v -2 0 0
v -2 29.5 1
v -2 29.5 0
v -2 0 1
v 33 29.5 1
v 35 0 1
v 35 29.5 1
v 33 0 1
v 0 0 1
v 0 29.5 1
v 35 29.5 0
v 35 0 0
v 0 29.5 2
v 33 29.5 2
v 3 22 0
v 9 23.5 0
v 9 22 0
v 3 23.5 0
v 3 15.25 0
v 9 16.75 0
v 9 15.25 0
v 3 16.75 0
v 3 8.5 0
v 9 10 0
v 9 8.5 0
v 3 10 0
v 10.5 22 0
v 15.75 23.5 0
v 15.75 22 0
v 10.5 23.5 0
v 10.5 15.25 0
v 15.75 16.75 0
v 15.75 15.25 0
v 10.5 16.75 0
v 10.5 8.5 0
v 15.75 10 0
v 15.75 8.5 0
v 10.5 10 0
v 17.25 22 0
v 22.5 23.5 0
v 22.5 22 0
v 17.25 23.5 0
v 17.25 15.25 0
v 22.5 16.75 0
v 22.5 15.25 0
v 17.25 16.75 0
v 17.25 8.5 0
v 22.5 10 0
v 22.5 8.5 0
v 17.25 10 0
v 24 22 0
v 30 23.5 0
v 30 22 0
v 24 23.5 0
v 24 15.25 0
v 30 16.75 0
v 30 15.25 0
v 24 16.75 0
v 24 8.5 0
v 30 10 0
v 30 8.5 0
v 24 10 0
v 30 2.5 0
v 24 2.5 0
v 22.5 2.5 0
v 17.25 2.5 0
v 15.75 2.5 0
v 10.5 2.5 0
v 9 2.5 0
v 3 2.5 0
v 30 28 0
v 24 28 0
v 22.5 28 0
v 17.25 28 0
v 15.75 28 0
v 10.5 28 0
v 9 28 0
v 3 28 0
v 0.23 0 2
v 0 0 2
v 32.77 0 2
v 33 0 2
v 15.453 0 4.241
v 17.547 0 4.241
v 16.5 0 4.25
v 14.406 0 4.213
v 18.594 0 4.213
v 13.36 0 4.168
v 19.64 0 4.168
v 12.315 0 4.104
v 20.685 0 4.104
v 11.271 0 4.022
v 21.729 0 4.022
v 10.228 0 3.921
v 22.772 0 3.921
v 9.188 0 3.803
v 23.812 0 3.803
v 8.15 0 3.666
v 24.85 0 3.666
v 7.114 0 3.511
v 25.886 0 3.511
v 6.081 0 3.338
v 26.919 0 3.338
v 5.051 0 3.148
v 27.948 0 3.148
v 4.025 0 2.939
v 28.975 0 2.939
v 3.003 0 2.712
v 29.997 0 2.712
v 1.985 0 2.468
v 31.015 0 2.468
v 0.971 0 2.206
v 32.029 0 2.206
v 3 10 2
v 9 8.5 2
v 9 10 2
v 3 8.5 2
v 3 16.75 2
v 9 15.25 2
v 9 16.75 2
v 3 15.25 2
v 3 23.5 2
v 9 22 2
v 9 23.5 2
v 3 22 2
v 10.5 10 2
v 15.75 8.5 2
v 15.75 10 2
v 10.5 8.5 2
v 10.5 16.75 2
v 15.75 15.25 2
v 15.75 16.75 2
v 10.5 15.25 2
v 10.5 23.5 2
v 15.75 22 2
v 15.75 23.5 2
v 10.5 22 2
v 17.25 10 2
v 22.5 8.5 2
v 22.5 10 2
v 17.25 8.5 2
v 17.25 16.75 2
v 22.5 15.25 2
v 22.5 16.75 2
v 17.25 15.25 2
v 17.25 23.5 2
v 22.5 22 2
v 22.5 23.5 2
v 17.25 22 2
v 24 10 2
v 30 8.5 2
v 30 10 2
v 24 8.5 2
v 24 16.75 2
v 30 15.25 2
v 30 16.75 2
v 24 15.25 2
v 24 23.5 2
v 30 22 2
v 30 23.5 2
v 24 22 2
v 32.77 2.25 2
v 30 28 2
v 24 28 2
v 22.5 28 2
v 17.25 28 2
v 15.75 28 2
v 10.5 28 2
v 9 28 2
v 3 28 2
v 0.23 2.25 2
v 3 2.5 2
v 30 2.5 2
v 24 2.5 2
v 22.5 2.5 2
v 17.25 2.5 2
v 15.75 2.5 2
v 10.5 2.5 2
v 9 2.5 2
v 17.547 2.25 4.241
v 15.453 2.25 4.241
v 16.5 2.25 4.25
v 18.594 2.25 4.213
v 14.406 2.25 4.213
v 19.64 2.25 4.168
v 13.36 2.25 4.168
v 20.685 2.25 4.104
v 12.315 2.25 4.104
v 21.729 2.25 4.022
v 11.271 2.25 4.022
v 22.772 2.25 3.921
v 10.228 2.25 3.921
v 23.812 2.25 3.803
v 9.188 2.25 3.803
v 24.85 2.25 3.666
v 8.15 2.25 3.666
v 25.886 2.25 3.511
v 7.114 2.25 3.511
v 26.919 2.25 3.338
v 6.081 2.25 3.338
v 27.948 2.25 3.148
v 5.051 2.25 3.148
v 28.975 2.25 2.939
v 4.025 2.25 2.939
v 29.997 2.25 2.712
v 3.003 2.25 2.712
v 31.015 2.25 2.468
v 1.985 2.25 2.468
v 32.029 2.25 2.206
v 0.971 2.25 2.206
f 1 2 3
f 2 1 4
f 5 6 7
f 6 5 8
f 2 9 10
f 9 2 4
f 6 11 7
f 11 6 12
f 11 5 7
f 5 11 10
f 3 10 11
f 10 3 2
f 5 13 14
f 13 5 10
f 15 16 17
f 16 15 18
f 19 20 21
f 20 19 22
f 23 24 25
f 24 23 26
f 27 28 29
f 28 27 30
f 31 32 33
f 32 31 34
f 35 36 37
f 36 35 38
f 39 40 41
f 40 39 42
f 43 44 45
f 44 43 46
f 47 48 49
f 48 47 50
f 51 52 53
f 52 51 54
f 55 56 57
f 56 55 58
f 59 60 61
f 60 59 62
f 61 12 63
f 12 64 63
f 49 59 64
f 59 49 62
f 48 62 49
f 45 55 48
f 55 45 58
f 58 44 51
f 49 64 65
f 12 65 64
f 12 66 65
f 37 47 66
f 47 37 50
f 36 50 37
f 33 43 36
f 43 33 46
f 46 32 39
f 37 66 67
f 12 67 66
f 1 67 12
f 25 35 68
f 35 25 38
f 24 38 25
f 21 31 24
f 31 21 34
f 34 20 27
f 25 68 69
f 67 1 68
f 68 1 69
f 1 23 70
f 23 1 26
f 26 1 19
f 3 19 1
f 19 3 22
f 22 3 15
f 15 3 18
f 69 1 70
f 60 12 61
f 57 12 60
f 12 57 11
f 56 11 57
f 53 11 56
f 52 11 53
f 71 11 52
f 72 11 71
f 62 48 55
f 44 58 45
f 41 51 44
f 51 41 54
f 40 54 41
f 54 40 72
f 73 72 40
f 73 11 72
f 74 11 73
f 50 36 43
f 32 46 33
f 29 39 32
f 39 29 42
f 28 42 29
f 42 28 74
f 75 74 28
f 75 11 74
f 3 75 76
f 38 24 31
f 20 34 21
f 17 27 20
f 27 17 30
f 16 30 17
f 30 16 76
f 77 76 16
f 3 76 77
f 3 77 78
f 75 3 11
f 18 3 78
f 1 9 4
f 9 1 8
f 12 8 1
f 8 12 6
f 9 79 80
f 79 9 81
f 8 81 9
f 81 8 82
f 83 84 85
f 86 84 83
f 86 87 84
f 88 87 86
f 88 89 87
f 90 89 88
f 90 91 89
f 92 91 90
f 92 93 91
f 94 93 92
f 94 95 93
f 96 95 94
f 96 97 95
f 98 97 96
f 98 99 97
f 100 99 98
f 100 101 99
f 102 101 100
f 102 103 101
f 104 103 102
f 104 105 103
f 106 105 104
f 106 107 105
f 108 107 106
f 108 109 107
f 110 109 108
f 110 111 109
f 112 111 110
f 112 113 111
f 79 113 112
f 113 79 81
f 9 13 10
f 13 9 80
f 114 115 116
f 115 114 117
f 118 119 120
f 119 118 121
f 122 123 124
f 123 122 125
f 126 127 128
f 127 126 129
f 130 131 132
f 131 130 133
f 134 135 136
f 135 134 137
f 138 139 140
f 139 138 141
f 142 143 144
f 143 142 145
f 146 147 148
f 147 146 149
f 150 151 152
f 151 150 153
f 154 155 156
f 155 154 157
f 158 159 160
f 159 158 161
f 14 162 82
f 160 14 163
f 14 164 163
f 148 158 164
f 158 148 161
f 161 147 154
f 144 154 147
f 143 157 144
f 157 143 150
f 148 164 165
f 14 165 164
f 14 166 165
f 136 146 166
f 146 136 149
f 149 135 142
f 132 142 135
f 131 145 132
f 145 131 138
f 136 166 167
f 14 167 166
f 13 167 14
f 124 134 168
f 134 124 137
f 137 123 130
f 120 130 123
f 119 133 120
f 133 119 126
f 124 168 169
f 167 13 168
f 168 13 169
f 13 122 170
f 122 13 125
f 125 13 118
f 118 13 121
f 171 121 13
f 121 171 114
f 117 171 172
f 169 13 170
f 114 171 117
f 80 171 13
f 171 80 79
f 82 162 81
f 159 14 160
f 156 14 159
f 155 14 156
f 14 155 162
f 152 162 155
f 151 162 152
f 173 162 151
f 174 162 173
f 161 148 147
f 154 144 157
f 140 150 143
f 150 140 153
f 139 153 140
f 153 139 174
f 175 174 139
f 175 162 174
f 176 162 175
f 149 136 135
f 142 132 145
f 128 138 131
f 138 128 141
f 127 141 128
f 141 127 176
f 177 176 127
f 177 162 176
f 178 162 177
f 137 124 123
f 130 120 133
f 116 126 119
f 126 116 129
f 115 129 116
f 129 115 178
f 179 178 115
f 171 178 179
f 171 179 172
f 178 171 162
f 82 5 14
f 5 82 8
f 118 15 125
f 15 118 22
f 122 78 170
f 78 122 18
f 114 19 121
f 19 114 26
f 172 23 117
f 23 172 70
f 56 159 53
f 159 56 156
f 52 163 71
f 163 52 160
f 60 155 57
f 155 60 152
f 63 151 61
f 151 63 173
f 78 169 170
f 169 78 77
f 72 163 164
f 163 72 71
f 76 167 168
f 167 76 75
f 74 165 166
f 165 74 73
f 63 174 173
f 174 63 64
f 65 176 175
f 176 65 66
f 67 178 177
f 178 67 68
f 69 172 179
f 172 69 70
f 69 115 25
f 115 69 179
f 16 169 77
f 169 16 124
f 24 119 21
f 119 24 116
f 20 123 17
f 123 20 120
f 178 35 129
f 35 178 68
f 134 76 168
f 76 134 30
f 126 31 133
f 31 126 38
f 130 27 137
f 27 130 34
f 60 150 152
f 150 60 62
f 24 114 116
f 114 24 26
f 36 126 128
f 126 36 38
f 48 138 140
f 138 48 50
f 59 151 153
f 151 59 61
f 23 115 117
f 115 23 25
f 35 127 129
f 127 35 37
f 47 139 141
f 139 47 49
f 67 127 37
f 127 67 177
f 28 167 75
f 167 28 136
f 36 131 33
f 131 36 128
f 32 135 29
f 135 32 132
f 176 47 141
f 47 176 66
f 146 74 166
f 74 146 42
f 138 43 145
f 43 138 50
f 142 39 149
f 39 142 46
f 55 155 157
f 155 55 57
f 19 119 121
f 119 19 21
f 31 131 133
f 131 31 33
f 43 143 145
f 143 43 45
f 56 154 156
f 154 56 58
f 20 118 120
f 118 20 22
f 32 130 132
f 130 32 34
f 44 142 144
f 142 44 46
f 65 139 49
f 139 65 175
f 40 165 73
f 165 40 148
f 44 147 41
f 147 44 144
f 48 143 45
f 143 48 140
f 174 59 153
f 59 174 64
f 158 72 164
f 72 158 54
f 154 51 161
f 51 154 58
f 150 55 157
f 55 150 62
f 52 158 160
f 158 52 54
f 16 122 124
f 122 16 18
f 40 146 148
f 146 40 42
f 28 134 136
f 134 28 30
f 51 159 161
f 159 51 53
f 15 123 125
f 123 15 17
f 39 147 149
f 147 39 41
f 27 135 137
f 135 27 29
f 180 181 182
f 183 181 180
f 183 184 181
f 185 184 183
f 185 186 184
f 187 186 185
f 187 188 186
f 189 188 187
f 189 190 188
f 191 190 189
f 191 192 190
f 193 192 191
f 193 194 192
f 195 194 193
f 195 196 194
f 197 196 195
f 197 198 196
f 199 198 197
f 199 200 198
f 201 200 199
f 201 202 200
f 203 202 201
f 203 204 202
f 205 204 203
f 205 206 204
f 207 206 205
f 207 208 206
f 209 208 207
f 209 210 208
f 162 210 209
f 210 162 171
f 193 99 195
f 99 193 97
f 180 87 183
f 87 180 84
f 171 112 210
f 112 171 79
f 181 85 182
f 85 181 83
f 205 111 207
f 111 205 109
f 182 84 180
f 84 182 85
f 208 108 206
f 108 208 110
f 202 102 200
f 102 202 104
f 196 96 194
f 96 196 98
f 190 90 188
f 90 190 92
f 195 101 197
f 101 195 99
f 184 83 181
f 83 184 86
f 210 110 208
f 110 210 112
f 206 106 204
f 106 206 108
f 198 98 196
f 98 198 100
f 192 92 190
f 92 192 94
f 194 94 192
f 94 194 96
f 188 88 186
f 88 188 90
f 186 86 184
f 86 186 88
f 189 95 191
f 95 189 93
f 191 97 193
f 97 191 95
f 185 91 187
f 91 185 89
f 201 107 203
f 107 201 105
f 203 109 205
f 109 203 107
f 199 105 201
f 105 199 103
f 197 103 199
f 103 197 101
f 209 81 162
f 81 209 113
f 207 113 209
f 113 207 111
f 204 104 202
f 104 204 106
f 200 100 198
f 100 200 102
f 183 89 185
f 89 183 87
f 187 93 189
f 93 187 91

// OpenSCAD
// file: gamecube-measurements.scad
gcWidth = 150 / 2;
gcHeight = 156 / 2;
gcDepth = 110 / 2;

gcCaseR = 2.4 / 2;

gcBaseDepth = 25 / 2;
gcBaseThickness = 1.5;
gcWallThickness = 3;

gcMountingPlateSlotThickness = 1;
gcMountingPlateSlotWidth = 2;
gcMountingPegDiameter = 1.8;
gcMountingPegHeight = 2;

gcFanNubThickness = 4.5 / 2;
gcFanNubArcHeight = 4.5 / 2;
gcFanNubArcRadius = 120 / 2;
gcFanGridWidth = 54 / 2;
gcFanPlateWidth = gcFanGridWidth + 6;
gcFanBeamWidth = 1.5;

gcFrontPlateArcDepth = 5.3 / 2;
gcFrontPlateArcRadius = 120 / 2;
gcFrontPlateWidth = 115 / 2;
gcFrontPlateHeight = 59 / 2;

gcFrontPlateHoleDiameter = 14.8;
gcFrontPlateHoleSpacing = 13;
gcFrontPlateHoleInsetY = 12.2;

gcMemorySlotWidth = 36;
gcMemorySlotHeight = 8.45;
gcMemorySlotDepth = 0.9;
gcMemorySlotR = 2.4;
gcMemoryInsetY = 9.2 / 2;

gcRearPlateWidth = gcWidth - 6;
gcRearPlateHeight = 94.5 / 2;
gcRearPlateInsetY = 5.6 / 2;

//cube([gcWidth, gcHeight, gcDepth]);
// main file
include <gamecube-measurements.scad>

gcFanPlateHeight = gcFrontPlateHeight;
$fn = 360;
thickness = 2;

module fanPlate() {
    // mounting plate
    // frame
    difference() {
        union() {
            translate([-gcMountingPlateSlotWidth, 0, 0])
                cube([gcFanPlateWidth + 2*gcMountingPlateSlotWidth, gcFanPlateHeight, gcMountingPlateSlotThickness]);
            cube([gcFanPlateWidth, gcFanPlateHeight, thickness]);
        }
        translate([gcFanPlateWidth/2 - gcFanGridWidth/2, gcFanPlateHeight - gcFanGridWidth, -0.1])
            cube([gcFanGridWidth, gcFanGridWidth - gcFanBeamWidth, thickness + 0.2]);
    }
    // beams
    translate([gcFanPlateWidth/2 - gcFanGridWidth/2, gcFanPlateHeight - gcFanGridWidth, 0]) union() {
        for (i=[1:3]) {
            translate([gcFanGridWidth/4*i - gcFanBeamWidth/2, 0, 0])
                cube([gcFanBeamWidth, gcFanGridWidth, thickness]);
            translate([0, gcFanGridWidth/4*i - gcFanBeamWidth/2, 0])
                cube([gcFanGridWidth, gcFanBeamWidth, thickness]);
        }
    }
    // nub
    translate([0, 0, thickness])
        intersection() {
            cube([gcFanPlateWidth, gcFanNubThickness, gcFanNubArcHeight]);
            translate([gcFanPlateWidth/2, 0, gcFanNubArcHeight - gcFanNubArcRadius])
                rotate([-90, 0, 0])
                    cylinder(r = gcFanNubArcRadius, h = gcFanNubThickness);
        }
}

color("MediumPurple") fanPlate();
